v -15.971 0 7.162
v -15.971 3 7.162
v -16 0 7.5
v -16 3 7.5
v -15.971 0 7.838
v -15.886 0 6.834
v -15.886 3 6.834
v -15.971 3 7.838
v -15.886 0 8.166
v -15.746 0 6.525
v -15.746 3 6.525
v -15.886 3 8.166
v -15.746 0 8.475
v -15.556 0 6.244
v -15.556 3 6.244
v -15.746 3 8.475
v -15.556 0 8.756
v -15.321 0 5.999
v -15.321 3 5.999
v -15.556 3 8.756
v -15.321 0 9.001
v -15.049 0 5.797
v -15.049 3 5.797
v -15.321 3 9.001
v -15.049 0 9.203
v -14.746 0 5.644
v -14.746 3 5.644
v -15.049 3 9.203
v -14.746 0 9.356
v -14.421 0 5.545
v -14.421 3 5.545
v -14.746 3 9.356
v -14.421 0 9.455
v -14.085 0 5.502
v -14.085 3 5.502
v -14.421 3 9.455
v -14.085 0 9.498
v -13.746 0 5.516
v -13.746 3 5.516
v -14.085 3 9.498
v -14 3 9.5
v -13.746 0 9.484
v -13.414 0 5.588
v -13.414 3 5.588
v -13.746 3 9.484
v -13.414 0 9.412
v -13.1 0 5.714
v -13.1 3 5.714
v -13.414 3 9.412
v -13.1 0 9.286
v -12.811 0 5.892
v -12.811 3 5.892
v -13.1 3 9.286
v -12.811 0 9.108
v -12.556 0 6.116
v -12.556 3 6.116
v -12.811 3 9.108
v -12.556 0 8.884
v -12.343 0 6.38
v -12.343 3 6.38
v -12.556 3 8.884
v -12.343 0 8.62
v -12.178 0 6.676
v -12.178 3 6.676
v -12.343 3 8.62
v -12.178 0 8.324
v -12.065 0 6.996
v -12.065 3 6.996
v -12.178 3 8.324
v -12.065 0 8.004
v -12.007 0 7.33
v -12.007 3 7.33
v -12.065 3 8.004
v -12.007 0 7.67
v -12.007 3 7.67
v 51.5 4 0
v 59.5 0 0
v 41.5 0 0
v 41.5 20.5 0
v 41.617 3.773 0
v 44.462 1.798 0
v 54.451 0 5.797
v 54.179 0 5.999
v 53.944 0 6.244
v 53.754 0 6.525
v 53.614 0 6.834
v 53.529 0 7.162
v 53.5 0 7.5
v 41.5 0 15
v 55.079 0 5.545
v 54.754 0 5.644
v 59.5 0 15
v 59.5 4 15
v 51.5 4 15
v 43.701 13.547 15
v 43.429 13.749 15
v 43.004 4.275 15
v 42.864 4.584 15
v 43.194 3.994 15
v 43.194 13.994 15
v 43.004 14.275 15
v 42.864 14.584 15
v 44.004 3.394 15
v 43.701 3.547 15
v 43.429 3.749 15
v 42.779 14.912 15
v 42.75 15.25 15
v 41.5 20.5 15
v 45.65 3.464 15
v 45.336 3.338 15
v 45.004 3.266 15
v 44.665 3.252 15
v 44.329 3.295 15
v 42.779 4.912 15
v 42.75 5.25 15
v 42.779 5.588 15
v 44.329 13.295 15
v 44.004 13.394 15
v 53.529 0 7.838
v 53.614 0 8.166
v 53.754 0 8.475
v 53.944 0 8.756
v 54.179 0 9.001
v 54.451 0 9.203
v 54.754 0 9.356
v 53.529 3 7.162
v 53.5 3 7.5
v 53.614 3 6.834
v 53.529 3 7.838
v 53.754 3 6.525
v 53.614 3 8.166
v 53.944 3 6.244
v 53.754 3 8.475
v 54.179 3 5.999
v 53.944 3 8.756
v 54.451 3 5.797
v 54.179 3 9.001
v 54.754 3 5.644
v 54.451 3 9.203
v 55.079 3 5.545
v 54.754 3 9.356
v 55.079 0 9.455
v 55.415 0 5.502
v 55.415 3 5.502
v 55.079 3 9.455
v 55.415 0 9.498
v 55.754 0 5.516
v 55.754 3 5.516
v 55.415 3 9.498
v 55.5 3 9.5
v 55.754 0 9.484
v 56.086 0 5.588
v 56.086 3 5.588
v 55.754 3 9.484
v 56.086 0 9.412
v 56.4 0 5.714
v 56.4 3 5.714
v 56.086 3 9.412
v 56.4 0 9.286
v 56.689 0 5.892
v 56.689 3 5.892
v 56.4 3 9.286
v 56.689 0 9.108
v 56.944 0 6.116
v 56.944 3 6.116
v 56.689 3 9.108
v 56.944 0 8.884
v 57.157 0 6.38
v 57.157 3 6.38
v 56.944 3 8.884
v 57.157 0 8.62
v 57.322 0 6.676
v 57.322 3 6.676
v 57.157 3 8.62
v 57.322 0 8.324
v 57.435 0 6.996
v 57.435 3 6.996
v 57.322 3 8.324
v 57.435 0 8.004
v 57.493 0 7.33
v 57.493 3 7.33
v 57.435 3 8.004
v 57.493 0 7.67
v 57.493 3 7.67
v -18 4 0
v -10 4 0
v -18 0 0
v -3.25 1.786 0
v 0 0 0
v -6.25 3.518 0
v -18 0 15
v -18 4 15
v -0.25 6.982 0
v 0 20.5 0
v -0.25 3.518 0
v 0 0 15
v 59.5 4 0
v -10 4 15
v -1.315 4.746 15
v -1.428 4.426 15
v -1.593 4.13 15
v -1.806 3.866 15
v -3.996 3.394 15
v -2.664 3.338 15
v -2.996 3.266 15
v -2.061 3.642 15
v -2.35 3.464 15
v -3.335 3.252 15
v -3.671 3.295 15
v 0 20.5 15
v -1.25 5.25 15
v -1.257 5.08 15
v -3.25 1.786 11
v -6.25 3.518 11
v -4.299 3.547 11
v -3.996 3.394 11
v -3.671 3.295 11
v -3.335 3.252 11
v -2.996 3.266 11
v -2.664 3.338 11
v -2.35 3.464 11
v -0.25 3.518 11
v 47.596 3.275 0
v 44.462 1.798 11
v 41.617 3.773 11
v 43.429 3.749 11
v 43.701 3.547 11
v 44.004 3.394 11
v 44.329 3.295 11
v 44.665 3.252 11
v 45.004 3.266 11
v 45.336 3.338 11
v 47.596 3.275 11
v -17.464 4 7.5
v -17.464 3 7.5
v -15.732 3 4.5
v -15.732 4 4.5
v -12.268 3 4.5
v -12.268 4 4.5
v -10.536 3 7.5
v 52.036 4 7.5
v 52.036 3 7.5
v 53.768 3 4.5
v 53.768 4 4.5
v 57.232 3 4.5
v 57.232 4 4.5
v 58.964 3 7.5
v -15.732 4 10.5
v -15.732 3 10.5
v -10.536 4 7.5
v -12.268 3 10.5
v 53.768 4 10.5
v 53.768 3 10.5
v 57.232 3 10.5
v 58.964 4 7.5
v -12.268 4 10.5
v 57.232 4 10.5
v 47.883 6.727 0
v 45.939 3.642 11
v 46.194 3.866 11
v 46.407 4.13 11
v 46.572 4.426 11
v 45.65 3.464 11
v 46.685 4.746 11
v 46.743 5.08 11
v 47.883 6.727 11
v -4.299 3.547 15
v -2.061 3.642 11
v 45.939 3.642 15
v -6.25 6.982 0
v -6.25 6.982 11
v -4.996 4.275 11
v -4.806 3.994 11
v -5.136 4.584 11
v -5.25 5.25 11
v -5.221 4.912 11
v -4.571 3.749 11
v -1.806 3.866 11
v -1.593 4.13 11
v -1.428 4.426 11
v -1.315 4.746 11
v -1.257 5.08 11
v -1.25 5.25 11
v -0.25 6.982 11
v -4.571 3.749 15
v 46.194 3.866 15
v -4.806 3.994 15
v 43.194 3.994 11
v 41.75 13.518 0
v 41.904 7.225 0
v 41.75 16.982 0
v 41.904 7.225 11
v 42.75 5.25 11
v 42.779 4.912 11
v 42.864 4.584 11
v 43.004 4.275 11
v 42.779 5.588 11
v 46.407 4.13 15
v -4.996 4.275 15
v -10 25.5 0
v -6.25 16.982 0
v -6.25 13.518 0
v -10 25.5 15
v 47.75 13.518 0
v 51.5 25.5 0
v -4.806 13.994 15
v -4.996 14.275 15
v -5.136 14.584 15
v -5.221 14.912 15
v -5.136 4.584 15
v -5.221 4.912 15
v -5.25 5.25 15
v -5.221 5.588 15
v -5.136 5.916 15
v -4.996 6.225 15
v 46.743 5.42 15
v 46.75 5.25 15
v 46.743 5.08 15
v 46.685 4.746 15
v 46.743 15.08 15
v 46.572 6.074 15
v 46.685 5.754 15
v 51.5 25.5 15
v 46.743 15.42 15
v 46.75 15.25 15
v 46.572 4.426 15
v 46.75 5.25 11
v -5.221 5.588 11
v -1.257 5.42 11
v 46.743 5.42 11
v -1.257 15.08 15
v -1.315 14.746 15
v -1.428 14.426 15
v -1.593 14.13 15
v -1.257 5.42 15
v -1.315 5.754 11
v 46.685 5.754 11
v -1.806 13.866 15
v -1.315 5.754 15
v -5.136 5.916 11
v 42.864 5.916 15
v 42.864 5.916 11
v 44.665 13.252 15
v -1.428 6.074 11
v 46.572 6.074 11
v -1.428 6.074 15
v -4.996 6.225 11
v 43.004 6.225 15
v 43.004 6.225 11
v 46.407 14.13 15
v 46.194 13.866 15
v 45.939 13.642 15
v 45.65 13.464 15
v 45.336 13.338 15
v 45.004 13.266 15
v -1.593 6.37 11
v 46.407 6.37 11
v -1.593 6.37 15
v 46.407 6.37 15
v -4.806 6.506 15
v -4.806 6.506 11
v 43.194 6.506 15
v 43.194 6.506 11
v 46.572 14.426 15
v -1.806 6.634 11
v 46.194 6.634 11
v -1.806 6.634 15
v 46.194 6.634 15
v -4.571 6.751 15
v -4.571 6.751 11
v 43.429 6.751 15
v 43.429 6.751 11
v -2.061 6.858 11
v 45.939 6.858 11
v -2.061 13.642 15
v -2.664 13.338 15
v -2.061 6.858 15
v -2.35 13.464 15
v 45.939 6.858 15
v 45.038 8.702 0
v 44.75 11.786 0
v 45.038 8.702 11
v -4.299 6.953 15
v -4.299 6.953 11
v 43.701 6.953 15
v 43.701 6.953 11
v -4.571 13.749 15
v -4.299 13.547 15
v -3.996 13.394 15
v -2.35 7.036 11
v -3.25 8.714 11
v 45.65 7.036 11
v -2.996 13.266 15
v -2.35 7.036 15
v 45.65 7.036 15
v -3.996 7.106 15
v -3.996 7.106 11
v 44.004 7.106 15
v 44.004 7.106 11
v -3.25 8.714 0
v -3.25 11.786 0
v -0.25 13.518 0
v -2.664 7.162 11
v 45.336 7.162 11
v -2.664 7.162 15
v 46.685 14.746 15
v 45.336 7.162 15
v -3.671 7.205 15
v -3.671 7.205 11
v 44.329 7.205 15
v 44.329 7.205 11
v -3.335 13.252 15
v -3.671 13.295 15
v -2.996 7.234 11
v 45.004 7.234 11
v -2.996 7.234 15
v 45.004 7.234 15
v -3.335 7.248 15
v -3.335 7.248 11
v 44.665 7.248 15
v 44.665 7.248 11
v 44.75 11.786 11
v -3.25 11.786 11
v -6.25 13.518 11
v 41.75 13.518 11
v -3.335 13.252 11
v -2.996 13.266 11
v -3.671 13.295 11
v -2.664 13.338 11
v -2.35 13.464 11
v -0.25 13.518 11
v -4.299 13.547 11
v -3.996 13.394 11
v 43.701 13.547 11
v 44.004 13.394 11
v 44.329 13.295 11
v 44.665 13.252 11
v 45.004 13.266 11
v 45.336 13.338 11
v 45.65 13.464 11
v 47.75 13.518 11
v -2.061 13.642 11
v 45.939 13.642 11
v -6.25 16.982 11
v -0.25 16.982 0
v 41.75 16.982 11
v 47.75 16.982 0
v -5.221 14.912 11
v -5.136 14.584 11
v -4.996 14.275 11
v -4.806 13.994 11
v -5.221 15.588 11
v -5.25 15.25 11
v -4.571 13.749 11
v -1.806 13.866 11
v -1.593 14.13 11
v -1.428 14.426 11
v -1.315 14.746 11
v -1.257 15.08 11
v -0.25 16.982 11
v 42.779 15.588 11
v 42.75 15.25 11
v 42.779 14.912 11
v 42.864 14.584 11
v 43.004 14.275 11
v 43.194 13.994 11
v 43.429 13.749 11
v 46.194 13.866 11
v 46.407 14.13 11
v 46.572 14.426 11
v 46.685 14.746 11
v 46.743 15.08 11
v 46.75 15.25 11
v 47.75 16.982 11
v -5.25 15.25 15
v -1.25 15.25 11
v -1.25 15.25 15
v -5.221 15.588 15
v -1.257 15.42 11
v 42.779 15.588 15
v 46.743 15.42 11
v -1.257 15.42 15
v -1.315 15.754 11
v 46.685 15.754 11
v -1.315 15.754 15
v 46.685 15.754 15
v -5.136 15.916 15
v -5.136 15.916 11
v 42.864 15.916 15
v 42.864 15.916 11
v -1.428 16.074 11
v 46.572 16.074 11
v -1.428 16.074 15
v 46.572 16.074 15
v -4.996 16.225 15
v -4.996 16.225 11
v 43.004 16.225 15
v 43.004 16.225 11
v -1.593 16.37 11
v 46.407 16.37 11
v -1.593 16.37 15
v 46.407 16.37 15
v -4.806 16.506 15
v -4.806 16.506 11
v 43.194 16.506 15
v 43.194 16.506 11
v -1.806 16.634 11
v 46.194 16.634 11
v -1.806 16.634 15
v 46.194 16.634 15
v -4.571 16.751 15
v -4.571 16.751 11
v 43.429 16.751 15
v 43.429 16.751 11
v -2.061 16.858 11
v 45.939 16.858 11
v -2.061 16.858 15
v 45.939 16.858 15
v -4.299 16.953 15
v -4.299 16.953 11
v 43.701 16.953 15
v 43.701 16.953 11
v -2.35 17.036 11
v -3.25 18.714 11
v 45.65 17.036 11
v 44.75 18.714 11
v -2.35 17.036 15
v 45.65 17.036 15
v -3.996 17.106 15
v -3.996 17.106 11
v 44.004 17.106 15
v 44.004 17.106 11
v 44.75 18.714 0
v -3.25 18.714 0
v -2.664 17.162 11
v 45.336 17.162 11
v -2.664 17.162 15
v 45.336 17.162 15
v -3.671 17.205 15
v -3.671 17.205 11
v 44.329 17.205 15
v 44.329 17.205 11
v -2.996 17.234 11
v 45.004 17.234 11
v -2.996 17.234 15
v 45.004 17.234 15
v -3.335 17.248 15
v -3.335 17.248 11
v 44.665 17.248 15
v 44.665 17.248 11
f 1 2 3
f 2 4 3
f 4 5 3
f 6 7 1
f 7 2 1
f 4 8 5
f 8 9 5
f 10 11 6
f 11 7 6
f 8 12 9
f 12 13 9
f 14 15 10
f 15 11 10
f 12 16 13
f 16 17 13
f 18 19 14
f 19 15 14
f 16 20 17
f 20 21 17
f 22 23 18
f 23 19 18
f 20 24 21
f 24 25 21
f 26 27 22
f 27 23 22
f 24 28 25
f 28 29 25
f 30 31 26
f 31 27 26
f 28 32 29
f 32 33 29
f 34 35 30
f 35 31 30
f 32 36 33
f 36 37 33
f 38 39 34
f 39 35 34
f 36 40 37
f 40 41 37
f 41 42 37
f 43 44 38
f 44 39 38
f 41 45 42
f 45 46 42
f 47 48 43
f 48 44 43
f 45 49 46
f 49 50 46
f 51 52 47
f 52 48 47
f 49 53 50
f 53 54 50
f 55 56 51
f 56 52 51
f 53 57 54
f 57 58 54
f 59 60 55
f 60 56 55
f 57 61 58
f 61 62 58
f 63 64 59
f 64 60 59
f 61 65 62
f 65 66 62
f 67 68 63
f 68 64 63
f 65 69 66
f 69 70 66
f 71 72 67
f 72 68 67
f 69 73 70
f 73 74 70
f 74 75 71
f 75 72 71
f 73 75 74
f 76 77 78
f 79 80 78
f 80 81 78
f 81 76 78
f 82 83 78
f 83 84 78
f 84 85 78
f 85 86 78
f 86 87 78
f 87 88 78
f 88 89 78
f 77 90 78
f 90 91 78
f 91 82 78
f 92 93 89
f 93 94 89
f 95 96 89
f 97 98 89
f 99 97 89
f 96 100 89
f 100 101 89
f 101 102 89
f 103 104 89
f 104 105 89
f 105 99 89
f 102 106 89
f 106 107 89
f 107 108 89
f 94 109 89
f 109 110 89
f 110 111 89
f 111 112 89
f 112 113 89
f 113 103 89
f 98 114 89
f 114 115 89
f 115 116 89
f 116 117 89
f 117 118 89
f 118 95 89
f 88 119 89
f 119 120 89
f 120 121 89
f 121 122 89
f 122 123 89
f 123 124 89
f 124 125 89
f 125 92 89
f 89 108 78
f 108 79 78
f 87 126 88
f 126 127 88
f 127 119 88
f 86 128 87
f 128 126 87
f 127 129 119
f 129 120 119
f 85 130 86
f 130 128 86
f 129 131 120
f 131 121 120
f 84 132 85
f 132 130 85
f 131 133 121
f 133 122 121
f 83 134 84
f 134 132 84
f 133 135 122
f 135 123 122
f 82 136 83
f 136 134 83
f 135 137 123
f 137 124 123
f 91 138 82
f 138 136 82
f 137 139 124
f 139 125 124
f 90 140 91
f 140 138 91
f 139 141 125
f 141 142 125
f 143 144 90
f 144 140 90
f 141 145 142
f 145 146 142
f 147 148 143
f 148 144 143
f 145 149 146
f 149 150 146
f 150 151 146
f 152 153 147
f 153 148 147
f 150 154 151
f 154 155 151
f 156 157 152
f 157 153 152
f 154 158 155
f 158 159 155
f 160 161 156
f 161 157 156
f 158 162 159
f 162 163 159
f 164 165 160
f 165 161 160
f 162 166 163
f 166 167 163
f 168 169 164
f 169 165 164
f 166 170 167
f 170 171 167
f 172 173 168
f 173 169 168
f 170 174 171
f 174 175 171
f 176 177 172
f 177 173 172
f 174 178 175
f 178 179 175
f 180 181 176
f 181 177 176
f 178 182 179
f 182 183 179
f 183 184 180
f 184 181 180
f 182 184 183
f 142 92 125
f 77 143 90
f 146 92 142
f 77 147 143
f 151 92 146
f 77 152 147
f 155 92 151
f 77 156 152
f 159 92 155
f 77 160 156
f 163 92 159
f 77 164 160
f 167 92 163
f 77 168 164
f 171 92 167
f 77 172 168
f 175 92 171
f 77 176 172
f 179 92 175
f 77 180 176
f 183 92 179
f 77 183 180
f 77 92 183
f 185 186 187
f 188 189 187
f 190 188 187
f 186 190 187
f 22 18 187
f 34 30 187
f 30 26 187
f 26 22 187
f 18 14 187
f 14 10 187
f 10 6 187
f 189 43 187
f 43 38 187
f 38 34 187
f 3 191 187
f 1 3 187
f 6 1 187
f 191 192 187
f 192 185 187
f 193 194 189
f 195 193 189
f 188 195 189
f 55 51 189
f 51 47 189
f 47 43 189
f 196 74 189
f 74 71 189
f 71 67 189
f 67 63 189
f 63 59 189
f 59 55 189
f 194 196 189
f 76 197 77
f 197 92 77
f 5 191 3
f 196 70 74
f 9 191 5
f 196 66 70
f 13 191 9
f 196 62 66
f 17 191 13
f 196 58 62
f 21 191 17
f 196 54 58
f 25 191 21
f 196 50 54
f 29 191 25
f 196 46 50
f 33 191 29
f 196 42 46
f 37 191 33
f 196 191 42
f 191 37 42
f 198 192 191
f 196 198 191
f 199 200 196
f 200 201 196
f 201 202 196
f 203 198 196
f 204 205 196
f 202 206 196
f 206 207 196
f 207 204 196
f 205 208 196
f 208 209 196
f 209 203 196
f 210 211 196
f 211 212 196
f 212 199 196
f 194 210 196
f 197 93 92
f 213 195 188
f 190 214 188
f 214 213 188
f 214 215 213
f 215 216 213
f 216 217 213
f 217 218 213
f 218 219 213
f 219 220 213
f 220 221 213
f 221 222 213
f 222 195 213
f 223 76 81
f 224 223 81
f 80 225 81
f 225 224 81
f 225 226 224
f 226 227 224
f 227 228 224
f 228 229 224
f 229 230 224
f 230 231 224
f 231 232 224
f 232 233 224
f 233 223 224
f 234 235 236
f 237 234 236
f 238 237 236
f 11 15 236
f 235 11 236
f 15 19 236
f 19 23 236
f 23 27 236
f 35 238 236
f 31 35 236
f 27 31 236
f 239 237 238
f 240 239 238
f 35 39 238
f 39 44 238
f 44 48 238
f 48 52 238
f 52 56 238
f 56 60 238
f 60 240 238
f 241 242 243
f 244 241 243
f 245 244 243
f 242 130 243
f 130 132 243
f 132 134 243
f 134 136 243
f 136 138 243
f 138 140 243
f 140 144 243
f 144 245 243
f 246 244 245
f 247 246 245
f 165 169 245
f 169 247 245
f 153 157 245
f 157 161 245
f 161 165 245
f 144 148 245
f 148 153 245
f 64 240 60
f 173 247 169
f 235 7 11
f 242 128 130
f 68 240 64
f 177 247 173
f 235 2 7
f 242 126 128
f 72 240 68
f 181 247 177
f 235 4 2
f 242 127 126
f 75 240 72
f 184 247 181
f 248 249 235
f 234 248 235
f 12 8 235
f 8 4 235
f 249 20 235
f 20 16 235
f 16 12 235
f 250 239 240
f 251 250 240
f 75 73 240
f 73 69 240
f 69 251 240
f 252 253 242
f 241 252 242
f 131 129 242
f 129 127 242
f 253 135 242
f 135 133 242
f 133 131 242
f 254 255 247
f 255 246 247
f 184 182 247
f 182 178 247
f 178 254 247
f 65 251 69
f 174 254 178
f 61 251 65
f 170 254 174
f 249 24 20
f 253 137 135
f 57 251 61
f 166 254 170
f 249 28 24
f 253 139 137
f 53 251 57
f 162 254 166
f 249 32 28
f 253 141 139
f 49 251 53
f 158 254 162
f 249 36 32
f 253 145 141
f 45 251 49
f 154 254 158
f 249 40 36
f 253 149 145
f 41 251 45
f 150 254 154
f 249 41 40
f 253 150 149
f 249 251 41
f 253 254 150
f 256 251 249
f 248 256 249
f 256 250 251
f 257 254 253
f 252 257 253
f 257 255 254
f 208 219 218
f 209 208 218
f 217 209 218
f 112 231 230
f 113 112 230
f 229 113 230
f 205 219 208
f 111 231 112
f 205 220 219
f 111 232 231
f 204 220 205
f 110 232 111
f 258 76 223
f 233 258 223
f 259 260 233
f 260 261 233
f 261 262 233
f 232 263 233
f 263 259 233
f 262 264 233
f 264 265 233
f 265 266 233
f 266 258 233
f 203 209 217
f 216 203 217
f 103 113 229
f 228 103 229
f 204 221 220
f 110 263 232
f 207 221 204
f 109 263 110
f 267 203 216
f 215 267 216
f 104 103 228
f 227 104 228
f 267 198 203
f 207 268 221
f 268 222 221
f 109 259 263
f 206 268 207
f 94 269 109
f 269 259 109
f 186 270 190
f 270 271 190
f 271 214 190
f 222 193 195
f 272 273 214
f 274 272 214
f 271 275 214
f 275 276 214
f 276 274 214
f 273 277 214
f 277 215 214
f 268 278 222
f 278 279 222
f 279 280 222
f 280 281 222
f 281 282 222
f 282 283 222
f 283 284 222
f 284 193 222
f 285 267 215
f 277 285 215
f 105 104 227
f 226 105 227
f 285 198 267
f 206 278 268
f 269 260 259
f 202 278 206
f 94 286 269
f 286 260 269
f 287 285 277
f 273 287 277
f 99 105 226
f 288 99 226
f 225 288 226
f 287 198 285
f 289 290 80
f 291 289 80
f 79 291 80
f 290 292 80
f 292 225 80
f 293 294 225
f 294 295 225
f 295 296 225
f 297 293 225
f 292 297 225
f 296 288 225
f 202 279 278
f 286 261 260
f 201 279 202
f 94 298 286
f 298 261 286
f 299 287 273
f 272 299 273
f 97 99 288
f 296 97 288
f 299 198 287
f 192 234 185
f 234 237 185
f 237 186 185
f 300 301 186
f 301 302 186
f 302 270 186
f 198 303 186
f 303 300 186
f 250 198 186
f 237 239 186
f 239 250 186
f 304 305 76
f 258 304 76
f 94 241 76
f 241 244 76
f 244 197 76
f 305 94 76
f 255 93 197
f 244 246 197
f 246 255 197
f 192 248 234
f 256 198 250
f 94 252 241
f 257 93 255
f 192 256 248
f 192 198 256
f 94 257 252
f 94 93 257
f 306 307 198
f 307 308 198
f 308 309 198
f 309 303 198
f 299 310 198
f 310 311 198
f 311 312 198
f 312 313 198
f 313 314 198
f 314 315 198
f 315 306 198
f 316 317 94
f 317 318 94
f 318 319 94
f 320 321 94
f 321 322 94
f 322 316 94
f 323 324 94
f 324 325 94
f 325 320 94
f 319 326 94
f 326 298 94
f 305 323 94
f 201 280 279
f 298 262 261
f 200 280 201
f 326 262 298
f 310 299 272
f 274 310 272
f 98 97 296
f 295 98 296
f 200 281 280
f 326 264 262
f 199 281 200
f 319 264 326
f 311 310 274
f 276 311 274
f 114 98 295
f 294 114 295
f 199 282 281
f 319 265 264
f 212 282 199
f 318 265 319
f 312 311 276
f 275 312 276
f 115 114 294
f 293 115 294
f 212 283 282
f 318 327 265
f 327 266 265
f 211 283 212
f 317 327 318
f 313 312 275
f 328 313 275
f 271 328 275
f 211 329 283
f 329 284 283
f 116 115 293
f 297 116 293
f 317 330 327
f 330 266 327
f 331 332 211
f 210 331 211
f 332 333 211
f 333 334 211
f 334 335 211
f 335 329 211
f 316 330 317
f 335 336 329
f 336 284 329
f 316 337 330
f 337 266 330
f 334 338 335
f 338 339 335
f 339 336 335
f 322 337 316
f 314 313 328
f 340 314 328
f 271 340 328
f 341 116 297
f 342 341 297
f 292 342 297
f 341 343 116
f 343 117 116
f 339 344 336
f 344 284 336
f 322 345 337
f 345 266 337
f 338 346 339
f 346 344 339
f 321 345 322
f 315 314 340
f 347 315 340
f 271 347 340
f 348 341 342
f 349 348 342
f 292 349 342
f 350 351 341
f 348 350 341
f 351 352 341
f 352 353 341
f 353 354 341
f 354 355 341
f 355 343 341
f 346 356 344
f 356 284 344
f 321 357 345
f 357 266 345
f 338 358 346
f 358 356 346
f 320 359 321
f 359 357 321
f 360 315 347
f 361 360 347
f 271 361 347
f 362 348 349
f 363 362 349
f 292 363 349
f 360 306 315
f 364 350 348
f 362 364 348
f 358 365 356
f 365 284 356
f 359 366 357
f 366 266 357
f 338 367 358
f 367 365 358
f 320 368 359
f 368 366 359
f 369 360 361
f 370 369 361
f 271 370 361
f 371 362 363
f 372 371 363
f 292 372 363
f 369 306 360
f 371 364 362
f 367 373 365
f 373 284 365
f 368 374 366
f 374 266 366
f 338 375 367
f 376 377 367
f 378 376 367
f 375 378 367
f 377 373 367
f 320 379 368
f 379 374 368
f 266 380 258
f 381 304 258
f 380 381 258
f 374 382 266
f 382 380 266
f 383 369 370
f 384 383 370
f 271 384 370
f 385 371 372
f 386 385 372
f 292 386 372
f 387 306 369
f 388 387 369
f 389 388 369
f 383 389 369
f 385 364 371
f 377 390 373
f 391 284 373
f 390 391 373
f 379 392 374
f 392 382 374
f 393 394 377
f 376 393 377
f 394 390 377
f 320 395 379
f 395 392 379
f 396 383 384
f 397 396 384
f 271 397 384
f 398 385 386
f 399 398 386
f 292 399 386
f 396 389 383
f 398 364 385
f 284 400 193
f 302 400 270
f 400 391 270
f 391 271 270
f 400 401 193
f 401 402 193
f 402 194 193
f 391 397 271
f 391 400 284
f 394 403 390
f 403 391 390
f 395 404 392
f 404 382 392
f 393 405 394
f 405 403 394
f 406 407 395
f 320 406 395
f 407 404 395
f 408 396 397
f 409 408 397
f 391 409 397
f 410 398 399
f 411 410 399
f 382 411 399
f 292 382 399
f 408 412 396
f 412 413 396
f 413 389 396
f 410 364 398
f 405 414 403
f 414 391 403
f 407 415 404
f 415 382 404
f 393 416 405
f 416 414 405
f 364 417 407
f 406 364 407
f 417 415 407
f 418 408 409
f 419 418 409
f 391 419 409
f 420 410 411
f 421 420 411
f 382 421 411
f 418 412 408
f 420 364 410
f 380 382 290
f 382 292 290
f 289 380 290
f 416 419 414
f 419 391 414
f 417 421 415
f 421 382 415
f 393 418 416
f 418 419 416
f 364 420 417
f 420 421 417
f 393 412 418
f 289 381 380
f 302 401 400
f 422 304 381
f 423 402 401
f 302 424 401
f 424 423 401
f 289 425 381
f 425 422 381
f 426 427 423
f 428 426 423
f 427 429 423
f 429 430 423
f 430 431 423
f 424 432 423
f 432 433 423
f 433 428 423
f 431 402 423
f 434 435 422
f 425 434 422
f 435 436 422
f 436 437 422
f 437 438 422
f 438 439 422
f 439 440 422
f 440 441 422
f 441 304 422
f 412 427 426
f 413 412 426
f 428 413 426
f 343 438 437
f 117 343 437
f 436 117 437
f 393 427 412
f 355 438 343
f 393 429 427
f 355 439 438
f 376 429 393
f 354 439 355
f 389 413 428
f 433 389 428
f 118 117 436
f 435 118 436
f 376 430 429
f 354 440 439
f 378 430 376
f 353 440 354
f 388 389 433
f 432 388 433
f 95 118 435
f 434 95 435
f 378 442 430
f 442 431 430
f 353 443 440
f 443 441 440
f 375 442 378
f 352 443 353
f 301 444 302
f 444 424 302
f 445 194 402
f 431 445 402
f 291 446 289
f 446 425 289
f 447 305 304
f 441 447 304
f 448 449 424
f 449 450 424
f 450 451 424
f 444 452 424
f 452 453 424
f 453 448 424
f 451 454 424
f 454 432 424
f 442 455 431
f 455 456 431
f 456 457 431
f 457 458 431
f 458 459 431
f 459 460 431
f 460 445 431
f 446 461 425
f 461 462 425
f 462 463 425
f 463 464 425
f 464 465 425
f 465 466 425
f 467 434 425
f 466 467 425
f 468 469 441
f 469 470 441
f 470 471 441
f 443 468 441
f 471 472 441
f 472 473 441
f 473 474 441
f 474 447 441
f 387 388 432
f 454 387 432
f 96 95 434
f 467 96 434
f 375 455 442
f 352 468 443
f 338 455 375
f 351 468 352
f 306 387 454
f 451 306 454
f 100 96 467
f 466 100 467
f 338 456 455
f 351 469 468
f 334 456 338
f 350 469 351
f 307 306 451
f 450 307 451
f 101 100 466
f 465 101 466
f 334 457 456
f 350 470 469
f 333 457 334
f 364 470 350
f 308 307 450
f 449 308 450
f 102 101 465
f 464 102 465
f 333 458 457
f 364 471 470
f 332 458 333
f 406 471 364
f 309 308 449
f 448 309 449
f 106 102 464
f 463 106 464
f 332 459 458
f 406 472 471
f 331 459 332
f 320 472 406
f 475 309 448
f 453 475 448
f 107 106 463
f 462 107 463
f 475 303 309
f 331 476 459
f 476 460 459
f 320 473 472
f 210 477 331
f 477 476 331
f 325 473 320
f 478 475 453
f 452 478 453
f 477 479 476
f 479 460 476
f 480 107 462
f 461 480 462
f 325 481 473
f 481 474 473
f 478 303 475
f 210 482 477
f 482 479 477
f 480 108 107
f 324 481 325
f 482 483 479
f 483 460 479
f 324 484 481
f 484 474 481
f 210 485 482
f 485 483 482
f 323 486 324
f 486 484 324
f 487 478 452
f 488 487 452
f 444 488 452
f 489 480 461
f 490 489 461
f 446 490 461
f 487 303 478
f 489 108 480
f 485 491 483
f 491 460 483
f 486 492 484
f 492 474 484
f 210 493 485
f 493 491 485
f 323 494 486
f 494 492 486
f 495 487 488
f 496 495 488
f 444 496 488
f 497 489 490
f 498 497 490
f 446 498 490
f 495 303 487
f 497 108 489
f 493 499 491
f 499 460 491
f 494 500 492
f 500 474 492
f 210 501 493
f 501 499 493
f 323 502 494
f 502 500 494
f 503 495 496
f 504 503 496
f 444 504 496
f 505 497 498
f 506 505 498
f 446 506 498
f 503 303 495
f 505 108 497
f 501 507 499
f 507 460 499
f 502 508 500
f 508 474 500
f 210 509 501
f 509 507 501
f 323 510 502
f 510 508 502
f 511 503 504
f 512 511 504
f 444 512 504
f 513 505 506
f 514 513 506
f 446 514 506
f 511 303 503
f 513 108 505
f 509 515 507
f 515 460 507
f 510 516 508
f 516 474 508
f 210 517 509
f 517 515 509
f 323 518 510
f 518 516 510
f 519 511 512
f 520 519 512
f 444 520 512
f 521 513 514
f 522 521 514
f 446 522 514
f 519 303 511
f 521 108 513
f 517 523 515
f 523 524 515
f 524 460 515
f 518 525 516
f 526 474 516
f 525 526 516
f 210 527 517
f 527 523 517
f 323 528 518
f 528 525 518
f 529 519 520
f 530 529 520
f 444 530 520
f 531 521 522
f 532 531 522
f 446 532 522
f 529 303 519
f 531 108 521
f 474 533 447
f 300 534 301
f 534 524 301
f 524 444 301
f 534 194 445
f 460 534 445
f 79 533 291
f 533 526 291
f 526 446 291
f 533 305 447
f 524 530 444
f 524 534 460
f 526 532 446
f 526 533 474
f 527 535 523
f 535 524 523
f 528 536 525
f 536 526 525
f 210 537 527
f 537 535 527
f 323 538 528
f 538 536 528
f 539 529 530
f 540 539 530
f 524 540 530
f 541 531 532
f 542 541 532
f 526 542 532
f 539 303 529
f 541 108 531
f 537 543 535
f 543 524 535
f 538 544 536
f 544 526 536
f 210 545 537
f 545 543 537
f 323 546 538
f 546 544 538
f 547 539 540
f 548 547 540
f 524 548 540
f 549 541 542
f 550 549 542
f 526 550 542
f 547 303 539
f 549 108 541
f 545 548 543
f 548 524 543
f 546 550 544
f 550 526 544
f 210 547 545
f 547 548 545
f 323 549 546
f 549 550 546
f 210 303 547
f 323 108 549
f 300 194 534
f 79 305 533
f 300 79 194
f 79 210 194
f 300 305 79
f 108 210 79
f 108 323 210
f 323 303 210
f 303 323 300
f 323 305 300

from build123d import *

# Parameters (mm, degrees)
SKETCH1_R           = 2
BOSS_EXTRUDE1_DEPTH = 15
CUT_EXTRUDE1_DEPTH  = 11
CUT_EXTRUDE2_DEPTH  = 1
SKETCH5_R           = 2
CUT_EXTRUDE3_DEPTH  = 4


with BuildPart() as part:
    # Sketch1 → Boss-Extrude1 (new body)
    with BuildSketch(Plane.XY):
        Polygon((0, 0), (0, 20.5), (41.5, 20.5), (41.5, 0), (59.5, 0), (59.5, 4), (51.5, 4), (51.5, 25.5), (-10, 25.5), (-10, 4), (-18, 4), (-18, 0), align=None)
        with Locations((44.75, 5.25)):
            Circle(SKETCH1_R, mode=Mode.SUBTRACT)
        with Locations((44.75, 15.25)):
            Circle(SKETCH1_R, mode=Mode.SUBTRACT)
        with Locations((-3.25, 15.25)):
            Circle(SKETCH1_R, mode=Mode.SUBTRACT)
        with Locations((-3.25, 5.25)):
            Circle(SKETCH1_R, mode=Mode.SUBTRACT)
    extrude(amount=BOSS_EXTRUDE1_DEPTH)

    # Sketch3 → Cut-Extrude1 (cut)
    with BuildSketch(Plane(origin=(0, 0, 0), x_dir=(-1, 0, 0), z_dir=(0, 0, -1))):
        Polygon((3.25, 18.714101615), (0.25, 16.982050808), (0.25, 13.517949192), (3.25, 11.785898385), (6.25, 13.517949192), (6.25, 16.982050808), align=None)
        Polygon((3.25, 8.714101615), (0.25, 6.982050808), (0.25, 3.517949192), (3.25, 1.785898385), (6.25, 3.517949192), (6.25, 6.982050808), align=None)
        Polygon((-44.75, 18.714101615), (-47.75, 16.982050808), (-47.75, 13.517949192), (-44.75, 11.785898385), (-41.75, 13.517949192), (-41.75, 16.982050808), align=None)
        Polygon((-45.037677981, 8.702135771), (-47.883476265, 6.726931446), (-47.595798284, 3.274795675), (-44.462322019, 1.797864229), (-41.616523735, 3.773068554), (-41.904201716, 7.225204325), align=None)
    extrude(amount=-CUT_EXTRUDE1_DEPTH, mode=Mode.SUBTRACT)

    # Sketch4 → Cut-Extrude2 (cut)
    with BuildSketch(Plane(origin=(0, 4, 0), x_dir=(1, 0, 0), z_dir=(0, 1, 0))):
        Polygon((58.964101615, -7.5), (57.232050808, -4.5), (53.767949192, -4.5), (52.035898385, -7.5), (53.767949192, -10.5), (57.232050808, -10.5), align=None)
        Polygon((-17.464101615, -7.5), (-15.732050808, -10.5), (-12.267949192, -10.5), (-10.535898385, -7.5), (-12.267949192, -4.5), (-15.732050808, -4.5), align=None)
    extrude(amount=-CUT_EXTRUDE2_DEPTH, mode=Mode.SUBTRACT)

    # Sketch5 → Cut-Extrude3 (cut)
    with BuildSketch(Plane(origin=(0, 4, 0), x_dir=(1, 0, 0), z_dir=(0, 1, 0))):
        with Locations(Location((55.5, -7.5, 0), (0, 0, 180))):
            Circle(SKETCH5_R)
        with Locations(Location((-14, -7.5, 0), (0, 0, 180))):
            Circle(SKETCH5_R)
    extrude(amount=-CUT_EXTRUDE3_DEPTH, mode=Mode.SUBTRACT)


solid = part.part
